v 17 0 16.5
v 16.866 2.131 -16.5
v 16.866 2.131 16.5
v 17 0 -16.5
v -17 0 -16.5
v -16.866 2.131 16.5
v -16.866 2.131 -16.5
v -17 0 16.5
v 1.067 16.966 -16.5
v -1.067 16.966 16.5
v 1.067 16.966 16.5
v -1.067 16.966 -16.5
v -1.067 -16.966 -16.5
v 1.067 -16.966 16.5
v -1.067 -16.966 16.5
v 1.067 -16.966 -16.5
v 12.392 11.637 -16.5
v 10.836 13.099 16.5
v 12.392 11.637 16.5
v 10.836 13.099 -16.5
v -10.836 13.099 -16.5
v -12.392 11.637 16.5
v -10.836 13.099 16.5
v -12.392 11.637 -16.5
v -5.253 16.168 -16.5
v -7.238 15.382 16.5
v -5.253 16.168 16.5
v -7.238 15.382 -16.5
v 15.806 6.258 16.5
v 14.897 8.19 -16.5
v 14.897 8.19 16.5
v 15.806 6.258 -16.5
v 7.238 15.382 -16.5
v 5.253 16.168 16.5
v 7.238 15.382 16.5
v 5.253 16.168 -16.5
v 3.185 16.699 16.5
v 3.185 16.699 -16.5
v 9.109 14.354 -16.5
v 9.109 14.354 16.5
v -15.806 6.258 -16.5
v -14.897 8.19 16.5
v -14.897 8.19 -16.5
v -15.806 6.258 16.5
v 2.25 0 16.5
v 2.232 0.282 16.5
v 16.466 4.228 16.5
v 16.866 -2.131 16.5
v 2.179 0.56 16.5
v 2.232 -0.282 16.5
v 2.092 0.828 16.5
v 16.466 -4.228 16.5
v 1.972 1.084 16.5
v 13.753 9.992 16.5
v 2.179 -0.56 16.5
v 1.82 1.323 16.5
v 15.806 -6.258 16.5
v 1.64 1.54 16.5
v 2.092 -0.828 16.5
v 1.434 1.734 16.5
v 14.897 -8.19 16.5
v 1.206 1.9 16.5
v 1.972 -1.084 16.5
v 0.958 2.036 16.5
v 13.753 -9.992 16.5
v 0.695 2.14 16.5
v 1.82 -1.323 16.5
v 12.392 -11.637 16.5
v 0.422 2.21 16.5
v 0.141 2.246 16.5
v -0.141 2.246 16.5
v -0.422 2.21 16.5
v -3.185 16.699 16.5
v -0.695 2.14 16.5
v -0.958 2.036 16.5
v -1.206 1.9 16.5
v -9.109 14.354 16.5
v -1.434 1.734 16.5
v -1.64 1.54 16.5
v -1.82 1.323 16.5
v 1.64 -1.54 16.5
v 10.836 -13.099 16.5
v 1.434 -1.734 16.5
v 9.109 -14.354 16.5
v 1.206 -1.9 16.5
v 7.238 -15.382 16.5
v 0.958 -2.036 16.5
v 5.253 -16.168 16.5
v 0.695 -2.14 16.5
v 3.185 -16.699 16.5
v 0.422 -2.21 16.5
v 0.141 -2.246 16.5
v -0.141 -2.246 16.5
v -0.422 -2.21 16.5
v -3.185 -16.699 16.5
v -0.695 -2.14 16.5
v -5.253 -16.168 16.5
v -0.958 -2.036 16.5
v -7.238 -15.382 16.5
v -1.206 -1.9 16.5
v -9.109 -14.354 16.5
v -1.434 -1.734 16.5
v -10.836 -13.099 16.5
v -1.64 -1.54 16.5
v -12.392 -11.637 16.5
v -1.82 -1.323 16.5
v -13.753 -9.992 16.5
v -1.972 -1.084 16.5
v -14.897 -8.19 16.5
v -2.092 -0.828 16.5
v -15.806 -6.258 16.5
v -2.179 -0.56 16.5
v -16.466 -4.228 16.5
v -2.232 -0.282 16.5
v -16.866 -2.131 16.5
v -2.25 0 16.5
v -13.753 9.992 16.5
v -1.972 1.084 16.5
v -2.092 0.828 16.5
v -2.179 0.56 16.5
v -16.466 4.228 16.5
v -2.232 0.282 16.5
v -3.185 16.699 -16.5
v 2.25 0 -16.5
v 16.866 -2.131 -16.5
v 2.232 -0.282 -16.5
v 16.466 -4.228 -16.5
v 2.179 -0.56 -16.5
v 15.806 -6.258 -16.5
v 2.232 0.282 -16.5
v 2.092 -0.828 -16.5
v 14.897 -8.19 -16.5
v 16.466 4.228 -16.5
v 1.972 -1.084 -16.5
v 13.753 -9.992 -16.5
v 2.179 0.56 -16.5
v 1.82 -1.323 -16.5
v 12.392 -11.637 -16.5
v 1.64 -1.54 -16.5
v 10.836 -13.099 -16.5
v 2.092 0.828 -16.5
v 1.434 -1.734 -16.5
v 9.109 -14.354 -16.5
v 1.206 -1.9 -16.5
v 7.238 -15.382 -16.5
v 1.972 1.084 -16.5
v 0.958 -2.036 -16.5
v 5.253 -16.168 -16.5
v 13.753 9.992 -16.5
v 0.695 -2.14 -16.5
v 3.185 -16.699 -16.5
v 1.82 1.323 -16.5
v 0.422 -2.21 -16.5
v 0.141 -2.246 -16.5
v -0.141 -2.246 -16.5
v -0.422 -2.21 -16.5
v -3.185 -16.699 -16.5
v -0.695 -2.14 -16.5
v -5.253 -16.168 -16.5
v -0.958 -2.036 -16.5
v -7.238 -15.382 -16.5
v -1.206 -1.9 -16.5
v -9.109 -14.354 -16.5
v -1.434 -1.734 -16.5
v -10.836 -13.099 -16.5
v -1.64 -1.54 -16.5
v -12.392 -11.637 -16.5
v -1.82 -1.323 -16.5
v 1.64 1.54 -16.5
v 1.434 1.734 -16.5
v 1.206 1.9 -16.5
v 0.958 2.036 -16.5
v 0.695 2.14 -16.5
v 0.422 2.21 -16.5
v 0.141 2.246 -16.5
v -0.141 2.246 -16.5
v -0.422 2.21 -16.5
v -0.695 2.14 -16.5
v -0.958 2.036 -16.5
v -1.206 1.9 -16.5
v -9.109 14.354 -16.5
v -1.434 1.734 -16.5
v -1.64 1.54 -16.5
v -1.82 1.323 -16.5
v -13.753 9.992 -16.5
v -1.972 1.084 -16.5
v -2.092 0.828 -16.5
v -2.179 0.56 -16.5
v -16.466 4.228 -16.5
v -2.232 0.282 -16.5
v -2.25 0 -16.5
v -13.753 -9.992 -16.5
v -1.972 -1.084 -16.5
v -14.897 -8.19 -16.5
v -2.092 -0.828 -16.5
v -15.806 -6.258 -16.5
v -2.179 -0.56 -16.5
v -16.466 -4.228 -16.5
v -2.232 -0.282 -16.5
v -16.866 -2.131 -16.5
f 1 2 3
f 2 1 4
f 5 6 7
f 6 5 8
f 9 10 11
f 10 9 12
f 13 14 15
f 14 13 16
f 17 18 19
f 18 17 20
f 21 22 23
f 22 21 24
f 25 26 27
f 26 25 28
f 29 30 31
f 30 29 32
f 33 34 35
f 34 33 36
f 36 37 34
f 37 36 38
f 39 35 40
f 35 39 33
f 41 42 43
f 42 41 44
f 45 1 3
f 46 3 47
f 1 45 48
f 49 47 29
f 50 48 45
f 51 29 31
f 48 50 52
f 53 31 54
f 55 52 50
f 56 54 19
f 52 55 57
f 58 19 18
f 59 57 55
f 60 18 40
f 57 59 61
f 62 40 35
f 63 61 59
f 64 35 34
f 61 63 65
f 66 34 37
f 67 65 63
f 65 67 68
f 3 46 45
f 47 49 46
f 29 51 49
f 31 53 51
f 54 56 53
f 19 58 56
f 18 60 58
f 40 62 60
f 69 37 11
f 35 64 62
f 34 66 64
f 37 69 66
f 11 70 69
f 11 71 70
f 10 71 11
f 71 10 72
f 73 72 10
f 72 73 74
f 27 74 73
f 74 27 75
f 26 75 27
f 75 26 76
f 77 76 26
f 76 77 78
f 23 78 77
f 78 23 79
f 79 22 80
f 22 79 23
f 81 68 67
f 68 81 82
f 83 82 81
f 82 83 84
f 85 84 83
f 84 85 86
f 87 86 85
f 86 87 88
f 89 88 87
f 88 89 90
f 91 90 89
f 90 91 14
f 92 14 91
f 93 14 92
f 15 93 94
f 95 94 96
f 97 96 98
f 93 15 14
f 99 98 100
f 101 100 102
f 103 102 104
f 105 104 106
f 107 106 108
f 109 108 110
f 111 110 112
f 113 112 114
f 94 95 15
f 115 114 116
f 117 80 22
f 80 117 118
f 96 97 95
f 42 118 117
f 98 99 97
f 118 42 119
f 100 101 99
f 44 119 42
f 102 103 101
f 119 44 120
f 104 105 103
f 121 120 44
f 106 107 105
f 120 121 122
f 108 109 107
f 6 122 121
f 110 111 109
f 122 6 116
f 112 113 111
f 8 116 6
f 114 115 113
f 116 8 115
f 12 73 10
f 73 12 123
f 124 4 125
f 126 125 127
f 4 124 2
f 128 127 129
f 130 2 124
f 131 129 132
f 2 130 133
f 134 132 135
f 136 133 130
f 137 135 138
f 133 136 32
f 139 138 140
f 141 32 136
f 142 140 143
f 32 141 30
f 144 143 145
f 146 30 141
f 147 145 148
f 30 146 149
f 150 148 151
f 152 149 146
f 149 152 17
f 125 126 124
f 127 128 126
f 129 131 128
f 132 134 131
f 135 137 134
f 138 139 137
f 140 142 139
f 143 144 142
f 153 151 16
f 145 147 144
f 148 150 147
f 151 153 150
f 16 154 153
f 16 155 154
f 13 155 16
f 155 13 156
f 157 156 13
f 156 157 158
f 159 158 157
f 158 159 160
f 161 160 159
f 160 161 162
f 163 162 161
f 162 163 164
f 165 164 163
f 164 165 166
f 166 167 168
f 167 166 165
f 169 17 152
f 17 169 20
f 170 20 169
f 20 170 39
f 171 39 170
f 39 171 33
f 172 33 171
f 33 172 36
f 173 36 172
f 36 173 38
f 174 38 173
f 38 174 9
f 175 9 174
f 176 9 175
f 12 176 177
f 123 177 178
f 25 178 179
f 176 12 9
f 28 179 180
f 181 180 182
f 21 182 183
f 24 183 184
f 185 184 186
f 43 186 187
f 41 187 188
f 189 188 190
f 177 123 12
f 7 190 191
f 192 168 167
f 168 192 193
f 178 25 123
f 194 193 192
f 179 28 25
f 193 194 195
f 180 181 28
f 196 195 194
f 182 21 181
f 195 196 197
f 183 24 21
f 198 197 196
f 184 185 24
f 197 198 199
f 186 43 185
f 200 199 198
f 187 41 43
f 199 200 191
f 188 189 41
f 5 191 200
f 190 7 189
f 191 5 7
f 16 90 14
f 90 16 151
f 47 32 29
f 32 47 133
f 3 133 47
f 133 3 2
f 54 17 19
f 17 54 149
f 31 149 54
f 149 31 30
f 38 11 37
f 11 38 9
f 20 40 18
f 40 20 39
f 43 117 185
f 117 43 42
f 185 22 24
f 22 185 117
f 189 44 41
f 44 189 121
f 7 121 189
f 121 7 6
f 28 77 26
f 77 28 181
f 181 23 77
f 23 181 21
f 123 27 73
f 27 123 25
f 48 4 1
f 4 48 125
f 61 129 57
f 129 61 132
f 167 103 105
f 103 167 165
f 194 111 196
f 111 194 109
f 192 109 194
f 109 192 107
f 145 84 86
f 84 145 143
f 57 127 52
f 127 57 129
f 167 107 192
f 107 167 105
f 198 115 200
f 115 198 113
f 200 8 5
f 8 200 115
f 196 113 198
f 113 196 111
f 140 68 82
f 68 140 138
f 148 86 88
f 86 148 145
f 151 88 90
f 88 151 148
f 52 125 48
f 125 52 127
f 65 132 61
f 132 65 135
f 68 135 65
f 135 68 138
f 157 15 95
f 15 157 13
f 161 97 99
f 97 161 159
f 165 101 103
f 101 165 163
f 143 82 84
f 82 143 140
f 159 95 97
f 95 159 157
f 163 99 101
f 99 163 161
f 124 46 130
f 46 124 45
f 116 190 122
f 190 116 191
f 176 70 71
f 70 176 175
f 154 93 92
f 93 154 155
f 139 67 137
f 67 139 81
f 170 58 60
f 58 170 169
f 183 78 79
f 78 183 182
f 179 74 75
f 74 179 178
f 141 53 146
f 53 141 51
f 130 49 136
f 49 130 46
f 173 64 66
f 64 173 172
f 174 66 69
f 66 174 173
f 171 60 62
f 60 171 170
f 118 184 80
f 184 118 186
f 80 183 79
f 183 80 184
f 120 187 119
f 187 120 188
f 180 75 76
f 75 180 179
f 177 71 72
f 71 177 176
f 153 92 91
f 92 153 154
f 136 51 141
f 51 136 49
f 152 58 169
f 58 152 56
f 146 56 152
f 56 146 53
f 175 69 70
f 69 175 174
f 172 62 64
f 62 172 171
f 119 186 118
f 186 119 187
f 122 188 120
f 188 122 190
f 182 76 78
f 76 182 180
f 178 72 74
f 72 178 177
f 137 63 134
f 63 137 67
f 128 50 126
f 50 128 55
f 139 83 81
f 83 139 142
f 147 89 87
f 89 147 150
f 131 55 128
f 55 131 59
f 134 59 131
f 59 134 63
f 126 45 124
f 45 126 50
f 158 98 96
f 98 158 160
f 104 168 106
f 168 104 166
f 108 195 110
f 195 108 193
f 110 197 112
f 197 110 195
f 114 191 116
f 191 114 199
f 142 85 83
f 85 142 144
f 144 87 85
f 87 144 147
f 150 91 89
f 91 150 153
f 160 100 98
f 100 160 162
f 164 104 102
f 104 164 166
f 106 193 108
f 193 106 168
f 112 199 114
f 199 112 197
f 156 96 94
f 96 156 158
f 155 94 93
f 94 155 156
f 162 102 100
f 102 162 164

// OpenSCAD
$fn = 50;


difference() {
	union() {
		translate(v = [0, 0, -16.5000000000]) {
			cylinder(h = 33, r = 17.0000000000);
		}
	}
	union() {
		translate(v = [0, 0, -100.0000000000]) {
			cylinder(h = 200, r = 2.2500000000);
		}
	}
}
